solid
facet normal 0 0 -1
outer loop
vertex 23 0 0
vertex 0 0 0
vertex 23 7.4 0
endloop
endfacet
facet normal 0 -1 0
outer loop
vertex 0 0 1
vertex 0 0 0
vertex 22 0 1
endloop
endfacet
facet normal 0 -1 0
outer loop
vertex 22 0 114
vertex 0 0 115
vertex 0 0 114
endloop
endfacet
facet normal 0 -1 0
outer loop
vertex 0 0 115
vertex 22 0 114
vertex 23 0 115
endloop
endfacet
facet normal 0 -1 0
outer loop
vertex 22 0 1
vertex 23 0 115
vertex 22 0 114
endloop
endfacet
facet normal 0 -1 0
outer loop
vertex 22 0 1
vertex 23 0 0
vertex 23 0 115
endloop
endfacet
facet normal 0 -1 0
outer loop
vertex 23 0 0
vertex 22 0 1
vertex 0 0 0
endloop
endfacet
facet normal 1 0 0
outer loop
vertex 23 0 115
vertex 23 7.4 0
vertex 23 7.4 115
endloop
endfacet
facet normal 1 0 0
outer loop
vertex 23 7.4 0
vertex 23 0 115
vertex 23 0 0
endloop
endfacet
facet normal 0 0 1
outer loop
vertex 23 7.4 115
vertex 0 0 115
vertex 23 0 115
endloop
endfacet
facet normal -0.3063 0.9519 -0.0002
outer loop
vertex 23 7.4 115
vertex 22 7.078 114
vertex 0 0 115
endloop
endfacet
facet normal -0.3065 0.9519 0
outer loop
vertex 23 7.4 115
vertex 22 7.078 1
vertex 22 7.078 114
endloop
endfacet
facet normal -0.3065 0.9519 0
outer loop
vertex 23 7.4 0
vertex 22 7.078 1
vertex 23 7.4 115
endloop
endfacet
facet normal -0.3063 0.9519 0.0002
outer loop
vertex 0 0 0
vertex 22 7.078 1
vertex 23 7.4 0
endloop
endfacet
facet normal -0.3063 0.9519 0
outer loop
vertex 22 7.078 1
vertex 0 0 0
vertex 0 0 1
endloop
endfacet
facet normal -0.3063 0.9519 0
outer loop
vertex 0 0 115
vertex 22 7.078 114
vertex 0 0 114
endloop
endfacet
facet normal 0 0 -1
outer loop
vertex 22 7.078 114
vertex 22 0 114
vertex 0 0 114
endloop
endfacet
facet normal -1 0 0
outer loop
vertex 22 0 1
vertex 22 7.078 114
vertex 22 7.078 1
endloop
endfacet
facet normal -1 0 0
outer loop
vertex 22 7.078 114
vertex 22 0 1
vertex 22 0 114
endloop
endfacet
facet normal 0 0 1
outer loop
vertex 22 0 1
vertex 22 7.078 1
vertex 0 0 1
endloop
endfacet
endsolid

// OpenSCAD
// A custom mesh facade for Dell Optiplex 9020
// Angled bracked part
//  By Carsten Thue-Bludworth
//  February, 2022

// CONFIGURATION CONSTANTS
$fn = 1;
$fa = 0.4;
// The overlap amount to help OpenSCAD form unions & differences
_DELTA = 0.01;

// These are the dimensions of the bracket
BASE_WIDTH  = 23;
BASE_HEIGHT = 115;
BASE_THICKNESS = 7.4;
WALL_THICKNESS = 1;

// Creates the base solid for our facade
module base() {
    difference() {
        // I linear extrude the wedge
        points = [[0, 0],
                  [BASE_WIDTH, 0],
                  [BASE_WIDTH, BASE_THICKNESS]
                 ];
        linear_extrude(BASE_HEIGHT)
            polygon(points);
        // and now subtract the middle
        translate([0, -_DELTA, WALL_THICKNESS])
            cube([BASE_WIDTH-WALL_THICKNESS, BASE_THICKNESS, BASE_HEIGHT-2*WALL_THICKNESS]);
    }
}

base();
